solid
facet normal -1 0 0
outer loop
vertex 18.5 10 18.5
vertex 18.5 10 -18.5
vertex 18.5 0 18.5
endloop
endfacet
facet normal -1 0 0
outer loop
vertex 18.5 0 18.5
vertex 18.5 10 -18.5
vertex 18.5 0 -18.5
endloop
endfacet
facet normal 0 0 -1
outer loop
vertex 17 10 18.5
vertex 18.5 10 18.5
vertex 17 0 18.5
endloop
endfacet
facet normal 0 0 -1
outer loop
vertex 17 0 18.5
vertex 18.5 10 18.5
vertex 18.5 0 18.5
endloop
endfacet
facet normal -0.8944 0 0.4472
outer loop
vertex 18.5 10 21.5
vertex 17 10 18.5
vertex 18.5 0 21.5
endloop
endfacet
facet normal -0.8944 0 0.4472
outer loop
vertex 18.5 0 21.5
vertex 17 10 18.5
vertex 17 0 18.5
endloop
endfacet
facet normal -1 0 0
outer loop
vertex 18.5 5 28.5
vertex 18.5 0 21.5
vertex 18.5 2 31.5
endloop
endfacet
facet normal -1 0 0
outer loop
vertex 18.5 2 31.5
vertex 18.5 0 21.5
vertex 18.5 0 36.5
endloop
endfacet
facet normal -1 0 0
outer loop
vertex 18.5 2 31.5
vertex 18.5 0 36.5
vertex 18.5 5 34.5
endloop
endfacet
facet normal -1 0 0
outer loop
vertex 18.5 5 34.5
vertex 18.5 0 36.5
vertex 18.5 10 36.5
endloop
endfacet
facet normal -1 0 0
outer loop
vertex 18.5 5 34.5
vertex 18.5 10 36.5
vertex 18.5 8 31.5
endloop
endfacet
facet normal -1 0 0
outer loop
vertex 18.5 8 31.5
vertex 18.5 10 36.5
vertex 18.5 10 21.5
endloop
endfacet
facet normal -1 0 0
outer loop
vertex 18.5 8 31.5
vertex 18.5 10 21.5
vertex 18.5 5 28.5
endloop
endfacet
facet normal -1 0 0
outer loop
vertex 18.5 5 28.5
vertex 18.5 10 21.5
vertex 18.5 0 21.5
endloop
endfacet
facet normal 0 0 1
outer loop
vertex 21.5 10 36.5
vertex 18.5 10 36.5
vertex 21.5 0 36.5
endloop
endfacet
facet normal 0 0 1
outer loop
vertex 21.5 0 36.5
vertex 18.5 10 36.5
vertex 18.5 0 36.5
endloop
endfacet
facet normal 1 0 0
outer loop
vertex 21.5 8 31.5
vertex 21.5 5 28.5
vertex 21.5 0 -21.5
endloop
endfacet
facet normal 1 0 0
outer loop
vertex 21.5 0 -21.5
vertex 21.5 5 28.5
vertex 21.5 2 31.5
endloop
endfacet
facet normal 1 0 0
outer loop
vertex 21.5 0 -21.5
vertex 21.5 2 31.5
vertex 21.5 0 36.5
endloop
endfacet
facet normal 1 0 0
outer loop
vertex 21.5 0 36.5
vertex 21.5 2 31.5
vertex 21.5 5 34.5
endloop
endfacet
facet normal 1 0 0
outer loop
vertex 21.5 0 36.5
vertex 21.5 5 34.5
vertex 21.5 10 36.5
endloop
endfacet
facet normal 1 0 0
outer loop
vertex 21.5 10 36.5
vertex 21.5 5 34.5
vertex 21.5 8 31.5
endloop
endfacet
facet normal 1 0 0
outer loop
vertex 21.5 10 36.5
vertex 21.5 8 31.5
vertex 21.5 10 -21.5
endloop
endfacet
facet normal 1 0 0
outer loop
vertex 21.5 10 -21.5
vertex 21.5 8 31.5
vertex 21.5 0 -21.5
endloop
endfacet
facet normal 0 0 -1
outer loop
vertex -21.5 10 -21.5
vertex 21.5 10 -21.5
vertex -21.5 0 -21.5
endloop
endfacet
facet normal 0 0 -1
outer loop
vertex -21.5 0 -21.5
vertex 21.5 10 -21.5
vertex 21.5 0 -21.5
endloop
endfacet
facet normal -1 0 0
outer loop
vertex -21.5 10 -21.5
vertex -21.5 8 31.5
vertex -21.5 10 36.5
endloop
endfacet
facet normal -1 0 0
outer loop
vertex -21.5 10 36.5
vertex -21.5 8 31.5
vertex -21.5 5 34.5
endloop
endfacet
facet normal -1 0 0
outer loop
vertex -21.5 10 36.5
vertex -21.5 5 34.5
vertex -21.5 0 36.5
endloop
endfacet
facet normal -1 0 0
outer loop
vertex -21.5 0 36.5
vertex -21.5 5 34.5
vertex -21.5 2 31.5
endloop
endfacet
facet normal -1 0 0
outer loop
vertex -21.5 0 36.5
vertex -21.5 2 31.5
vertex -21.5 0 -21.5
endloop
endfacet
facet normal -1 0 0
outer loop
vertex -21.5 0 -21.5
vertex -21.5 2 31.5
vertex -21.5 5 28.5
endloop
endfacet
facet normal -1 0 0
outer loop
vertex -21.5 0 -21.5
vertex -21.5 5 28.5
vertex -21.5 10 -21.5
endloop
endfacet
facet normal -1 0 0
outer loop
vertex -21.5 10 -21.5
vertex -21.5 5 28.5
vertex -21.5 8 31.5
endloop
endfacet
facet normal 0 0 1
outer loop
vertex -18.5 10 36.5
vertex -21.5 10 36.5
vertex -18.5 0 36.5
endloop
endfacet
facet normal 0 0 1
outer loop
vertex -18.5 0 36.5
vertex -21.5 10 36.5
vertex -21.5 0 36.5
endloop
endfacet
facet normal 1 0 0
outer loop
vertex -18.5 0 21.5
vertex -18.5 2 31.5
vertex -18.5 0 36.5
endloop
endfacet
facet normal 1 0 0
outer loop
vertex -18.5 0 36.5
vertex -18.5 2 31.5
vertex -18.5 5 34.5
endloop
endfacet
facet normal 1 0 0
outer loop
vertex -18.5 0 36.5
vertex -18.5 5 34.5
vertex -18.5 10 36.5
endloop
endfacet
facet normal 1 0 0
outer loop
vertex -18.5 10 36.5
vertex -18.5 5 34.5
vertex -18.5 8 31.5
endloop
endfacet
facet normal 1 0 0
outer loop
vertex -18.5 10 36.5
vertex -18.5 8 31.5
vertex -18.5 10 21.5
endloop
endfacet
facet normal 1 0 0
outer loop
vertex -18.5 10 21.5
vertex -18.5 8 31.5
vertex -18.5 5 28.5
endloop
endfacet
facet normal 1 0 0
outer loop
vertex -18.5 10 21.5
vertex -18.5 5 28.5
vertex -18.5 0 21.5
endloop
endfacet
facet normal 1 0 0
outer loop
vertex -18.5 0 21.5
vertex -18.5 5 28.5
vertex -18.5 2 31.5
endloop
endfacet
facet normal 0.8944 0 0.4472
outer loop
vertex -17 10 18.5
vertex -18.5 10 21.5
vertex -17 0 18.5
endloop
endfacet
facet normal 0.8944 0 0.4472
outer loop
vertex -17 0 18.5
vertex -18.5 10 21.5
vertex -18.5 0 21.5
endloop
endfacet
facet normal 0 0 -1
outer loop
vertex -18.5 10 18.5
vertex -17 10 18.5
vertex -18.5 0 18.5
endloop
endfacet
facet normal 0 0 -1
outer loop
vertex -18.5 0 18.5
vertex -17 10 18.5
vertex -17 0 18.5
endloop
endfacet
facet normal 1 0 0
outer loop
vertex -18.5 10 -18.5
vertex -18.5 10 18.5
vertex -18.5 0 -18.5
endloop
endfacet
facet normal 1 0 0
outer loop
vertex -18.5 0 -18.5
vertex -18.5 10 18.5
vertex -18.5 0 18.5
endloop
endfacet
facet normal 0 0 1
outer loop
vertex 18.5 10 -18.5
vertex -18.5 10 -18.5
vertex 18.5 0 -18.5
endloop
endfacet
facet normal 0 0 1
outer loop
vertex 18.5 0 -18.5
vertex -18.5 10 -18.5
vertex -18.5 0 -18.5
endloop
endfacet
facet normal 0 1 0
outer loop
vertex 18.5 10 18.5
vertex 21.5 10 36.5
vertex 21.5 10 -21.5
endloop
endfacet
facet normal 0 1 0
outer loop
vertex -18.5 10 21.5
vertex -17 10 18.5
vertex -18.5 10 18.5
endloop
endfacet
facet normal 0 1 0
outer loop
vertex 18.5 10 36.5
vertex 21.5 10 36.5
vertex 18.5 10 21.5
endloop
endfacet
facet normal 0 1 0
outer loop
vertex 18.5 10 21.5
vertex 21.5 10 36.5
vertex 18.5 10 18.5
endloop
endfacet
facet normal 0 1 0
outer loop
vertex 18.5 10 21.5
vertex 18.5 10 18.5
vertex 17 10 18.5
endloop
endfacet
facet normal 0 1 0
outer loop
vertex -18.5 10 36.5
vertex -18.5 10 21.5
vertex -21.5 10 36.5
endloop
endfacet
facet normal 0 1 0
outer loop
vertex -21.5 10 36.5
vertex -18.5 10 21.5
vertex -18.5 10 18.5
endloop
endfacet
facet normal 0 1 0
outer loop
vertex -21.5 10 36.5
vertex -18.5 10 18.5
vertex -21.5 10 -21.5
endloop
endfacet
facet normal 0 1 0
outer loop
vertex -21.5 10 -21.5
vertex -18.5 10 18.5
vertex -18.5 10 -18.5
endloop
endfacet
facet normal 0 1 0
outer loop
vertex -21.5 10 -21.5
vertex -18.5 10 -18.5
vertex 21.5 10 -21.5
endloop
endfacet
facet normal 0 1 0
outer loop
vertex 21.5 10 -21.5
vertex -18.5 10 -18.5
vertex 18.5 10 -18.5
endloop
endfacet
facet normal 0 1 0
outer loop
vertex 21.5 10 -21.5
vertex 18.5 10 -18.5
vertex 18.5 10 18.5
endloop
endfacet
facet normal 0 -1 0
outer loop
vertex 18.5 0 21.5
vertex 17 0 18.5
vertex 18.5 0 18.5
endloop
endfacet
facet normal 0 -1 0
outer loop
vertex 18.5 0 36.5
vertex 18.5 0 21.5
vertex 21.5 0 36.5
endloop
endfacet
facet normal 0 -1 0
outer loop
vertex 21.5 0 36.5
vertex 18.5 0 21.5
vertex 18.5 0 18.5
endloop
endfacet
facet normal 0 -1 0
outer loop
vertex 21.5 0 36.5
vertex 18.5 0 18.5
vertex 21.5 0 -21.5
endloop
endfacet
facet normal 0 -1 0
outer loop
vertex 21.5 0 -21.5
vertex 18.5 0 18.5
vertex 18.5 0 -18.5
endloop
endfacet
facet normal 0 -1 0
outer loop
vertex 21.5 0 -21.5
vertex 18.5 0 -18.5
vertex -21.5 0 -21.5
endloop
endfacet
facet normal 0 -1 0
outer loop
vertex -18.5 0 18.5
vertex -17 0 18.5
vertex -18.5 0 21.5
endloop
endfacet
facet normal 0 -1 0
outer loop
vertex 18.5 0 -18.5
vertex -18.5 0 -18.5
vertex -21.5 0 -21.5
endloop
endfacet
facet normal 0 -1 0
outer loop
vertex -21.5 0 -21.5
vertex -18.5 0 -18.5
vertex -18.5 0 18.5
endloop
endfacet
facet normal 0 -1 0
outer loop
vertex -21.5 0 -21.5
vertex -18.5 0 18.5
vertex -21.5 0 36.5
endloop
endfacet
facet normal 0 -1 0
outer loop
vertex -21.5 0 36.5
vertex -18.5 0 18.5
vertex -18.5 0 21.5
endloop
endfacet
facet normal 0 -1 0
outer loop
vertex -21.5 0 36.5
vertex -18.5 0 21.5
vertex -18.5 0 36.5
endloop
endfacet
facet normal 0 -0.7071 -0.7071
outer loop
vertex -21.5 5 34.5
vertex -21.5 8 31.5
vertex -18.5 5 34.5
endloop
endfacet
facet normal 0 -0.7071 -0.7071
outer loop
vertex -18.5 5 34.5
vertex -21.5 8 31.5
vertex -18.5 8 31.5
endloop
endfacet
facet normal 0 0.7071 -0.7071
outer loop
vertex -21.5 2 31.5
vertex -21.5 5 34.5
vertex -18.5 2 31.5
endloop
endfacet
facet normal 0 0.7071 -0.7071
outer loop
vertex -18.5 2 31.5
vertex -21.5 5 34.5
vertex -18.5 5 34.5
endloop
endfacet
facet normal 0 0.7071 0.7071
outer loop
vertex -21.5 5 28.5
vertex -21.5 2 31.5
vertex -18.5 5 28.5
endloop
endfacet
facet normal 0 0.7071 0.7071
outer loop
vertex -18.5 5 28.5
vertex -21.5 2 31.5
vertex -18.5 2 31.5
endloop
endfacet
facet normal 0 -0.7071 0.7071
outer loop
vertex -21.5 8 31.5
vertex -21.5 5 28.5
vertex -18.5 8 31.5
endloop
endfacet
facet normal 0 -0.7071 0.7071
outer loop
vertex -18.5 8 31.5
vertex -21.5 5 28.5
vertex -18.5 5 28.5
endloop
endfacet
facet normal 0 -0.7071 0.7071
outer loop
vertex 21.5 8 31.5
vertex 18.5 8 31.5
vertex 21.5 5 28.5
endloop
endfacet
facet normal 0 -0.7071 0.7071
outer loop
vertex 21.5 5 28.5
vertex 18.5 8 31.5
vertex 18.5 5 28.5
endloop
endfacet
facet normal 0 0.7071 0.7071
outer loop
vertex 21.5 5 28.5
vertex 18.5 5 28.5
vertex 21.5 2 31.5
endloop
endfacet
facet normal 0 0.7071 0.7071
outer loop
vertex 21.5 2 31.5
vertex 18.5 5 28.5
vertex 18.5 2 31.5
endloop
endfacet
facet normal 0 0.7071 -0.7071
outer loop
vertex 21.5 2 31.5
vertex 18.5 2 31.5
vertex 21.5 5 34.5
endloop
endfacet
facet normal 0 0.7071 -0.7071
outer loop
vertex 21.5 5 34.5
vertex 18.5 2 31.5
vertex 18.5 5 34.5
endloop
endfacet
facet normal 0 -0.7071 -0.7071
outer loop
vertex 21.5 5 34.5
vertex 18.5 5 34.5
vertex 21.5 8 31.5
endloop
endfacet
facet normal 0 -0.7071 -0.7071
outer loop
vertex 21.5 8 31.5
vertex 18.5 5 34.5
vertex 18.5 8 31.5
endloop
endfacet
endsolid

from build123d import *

# Parameters (mm, degrees)
SKETCH1_W           = 3
SKETCH1_H           = 15
BOSS_EXTRUDE1_DEPTH = 10
CUT_EXTRUDE1_DEPTH  = 58.282196187


with BuildPart() as part:
    # Sketch1 → Boss-Extrude1 (new body)
    with BuildSketch(Plane(origin=(0, 0, 0), x_dir=(1, 0, 0), z_dir=(0, 1, 0))):
        Polygon((18.5, -18.5), (18.5, 18.5), (-18.5, 18.5), (-18.5, -18.5), (-18.5, -21.5), (-21.5, -21.5), (-21.5, 21.5), (21.5, 21.5), (21.5, -21.5), (18.5, -21.5), align=None)
        with Locations((-20, -29)):
            Rectangle(SKETCH1_W, SKETCH1_H)
        with Locations((20, -29)):
            Rectangle(SKETCH1_W, SKETCH1_H)
        Polygon((-18.5, -21.5), (-17, -18.5), (-18.5, -18.5), align=None)
        Polygon((17, -18.5), (18.5, -18.5), (18.5, -21.5), align=None)
    extrude(amount=BOSS_EXTRUDE1_DEPTH)

    # Sketch3 → Cut-Extrude1 (cut, through all)
    with BuildSketch(Plane(origin=(21.5, 0, 0), x_dir=(0, 0, -1), z_dir=(1, 0, 0))):
        Polygon((-31.5, 8), (-34.5, 5), (-31.5, 2), (-28.5, 5), align=None)
    extrude(amount=-CUT_EXTRUDE1_DEPTH, mode=Mode.SUBTRACT)


solid = part.part
